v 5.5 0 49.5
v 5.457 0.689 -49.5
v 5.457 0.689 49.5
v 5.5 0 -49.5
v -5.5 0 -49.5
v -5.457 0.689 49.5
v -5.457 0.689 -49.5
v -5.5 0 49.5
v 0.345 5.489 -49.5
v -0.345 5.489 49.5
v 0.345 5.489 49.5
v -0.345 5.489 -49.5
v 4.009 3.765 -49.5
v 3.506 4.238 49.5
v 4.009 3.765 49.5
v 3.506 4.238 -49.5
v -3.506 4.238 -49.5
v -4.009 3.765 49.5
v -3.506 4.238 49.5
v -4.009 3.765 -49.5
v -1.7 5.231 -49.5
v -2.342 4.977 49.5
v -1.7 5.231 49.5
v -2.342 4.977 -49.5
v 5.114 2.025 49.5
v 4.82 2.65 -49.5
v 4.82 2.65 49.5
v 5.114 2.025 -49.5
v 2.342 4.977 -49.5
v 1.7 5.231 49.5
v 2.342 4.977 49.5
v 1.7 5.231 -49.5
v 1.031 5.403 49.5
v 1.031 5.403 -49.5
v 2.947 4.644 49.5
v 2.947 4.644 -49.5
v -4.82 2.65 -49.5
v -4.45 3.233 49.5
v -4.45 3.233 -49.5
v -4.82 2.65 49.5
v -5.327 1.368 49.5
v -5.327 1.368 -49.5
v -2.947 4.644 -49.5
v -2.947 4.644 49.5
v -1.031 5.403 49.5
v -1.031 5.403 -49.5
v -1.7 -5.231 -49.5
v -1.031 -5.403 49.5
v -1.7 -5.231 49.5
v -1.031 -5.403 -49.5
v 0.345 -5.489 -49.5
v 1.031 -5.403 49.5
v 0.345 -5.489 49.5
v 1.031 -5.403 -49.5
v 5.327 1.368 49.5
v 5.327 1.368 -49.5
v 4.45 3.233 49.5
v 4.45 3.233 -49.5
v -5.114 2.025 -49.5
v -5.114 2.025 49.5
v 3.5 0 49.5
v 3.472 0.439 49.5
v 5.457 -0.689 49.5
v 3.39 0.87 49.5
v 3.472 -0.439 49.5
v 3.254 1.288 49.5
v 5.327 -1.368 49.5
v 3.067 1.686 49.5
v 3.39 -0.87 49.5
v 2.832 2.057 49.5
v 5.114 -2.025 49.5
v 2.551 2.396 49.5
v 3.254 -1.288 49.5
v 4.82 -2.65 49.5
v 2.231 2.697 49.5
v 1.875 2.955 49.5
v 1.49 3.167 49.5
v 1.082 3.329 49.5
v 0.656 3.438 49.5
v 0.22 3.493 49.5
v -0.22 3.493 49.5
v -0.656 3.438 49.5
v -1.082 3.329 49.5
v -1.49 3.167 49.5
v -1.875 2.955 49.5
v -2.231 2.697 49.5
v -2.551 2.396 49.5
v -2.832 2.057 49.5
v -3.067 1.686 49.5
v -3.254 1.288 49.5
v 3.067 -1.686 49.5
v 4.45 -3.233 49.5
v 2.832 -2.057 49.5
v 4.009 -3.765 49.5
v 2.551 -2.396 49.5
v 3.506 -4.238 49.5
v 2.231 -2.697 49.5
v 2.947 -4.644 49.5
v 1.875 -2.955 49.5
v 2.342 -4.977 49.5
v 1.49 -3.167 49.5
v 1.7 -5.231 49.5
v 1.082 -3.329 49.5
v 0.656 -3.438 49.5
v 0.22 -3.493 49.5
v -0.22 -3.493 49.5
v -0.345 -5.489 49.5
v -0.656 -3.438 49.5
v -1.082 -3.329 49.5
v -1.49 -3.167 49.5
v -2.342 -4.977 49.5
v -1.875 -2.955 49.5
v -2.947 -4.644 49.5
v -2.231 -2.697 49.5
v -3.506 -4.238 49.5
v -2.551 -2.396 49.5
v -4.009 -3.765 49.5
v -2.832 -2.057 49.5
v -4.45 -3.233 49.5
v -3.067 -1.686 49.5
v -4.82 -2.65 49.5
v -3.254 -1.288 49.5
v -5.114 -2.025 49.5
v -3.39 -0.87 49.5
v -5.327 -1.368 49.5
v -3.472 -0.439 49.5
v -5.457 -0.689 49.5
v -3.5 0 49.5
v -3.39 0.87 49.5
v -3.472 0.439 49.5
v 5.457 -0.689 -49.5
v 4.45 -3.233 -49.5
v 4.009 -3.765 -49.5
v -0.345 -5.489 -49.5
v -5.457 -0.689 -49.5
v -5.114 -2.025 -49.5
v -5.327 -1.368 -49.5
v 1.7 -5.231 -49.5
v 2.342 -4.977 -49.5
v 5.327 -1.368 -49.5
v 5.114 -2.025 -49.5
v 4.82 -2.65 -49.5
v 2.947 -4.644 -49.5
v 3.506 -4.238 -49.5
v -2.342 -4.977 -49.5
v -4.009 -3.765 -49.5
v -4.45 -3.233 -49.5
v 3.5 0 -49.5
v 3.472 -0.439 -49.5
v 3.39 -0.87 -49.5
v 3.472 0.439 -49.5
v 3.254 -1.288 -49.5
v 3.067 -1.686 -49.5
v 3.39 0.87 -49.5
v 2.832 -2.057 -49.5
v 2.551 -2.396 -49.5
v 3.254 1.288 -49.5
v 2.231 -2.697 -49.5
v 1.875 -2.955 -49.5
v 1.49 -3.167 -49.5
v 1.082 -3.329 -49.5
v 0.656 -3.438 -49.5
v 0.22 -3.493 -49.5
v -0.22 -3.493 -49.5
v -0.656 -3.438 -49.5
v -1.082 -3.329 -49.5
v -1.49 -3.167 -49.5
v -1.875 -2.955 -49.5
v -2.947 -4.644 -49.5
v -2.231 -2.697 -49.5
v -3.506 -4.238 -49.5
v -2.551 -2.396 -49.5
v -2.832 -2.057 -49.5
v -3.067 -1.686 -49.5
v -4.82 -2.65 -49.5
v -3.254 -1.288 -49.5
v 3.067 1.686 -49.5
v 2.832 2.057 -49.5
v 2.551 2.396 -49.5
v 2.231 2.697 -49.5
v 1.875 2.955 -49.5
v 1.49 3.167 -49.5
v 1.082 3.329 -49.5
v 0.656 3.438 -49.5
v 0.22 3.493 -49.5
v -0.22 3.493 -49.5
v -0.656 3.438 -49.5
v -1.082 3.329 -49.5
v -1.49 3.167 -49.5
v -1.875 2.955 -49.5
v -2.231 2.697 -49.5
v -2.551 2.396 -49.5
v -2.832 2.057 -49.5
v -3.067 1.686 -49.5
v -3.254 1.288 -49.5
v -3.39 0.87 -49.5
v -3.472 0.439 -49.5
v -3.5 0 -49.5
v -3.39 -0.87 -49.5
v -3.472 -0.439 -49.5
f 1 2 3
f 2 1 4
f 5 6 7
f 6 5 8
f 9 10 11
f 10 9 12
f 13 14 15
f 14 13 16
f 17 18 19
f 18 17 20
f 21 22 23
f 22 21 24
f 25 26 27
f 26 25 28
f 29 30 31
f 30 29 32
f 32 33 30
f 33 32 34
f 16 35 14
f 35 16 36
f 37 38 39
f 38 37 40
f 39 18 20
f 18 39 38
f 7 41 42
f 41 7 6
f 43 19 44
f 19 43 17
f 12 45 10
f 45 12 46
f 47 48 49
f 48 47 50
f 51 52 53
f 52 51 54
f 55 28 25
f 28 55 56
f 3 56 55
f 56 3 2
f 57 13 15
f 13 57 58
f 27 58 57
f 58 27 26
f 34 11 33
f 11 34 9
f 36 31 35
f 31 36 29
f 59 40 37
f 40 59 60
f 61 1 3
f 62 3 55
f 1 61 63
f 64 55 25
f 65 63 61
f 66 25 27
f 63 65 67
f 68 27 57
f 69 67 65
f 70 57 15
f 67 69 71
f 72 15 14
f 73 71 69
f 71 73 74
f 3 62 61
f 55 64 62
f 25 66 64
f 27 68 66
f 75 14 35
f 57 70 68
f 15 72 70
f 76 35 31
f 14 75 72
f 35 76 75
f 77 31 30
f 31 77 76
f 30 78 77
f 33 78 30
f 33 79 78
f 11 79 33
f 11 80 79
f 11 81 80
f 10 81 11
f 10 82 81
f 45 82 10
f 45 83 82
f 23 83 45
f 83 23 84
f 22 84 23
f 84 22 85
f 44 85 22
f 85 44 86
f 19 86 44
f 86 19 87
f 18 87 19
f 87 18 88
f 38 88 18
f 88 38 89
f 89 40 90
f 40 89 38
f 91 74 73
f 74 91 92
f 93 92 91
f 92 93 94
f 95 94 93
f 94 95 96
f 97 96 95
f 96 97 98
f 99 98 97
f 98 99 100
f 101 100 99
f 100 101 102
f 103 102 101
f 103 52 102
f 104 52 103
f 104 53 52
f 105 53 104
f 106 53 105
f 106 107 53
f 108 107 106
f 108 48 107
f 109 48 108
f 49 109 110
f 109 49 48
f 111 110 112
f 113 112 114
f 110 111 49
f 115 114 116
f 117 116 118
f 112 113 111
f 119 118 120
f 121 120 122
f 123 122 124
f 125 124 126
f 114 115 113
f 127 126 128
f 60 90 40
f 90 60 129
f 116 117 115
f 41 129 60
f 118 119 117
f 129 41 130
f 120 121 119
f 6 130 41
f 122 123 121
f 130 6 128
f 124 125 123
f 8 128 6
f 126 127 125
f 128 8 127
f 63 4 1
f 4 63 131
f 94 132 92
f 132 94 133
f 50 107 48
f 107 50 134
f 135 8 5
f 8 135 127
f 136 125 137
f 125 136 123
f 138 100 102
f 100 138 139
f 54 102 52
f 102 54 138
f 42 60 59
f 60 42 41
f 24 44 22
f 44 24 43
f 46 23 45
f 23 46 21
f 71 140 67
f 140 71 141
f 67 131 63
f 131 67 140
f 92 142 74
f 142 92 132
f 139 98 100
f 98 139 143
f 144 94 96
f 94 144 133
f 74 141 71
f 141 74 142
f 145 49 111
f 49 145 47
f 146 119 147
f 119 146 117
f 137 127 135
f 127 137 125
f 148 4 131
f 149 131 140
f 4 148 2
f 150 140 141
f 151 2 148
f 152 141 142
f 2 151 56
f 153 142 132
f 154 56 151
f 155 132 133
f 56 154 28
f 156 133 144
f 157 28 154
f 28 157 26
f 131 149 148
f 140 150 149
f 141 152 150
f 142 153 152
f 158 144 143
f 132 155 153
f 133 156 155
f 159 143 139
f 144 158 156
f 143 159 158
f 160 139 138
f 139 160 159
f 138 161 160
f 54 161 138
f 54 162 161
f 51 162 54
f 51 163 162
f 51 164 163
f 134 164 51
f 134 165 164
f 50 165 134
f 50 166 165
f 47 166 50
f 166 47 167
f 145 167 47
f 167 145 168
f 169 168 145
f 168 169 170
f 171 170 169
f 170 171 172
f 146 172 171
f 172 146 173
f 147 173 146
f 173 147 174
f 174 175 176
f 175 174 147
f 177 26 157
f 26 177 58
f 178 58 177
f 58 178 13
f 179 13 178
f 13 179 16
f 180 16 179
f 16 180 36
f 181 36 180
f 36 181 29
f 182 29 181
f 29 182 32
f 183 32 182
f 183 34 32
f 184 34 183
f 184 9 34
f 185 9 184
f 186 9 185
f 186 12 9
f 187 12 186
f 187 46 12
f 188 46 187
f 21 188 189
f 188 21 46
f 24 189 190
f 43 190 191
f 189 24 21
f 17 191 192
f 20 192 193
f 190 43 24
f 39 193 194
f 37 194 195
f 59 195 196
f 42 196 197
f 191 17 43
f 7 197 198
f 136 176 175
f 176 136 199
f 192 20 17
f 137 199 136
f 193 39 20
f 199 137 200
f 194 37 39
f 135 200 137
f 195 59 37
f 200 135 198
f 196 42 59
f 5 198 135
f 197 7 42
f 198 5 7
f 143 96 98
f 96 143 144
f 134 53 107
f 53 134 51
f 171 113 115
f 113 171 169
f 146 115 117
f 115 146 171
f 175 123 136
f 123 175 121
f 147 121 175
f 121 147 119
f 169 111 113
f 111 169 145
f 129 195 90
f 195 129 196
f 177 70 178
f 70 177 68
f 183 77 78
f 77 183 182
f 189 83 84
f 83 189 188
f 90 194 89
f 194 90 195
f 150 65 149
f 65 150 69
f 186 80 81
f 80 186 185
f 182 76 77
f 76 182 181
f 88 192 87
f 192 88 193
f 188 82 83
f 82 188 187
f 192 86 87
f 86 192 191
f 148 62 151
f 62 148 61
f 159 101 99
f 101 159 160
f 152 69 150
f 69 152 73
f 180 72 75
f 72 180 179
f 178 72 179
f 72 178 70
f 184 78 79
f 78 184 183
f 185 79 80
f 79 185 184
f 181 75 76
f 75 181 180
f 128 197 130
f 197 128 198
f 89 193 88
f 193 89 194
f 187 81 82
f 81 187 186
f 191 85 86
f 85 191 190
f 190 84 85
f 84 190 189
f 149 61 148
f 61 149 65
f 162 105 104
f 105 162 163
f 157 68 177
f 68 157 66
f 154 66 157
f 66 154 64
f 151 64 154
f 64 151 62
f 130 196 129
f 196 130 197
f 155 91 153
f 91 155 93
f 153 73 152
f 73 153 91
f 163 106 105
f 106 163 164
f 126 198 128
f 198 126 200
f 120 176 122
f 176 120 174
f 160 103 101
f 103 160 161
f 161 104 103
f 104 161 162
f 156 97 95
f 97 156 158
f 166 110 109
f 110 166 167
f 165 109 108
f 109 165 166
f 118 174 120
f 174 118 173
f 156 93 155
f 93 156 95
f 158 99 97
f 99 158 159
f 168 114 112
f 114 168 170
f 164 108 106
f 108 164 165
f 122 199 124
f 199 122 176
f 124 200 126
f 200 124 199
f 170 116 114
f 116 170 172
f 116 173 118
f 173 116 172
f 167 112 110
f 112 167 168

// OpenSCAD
$fn = 50;


difference() {
	union() {
		translate(v = [0, 0, -49.5000000000]) {
			cylinder(h = 99, r = 5.5000000000);
		}
	}
	union() {
		translate(v = [0, 0, -100.0000000000]) {
			cylinder(h = 200, r = 3.5000000000);
		}
	}
}
